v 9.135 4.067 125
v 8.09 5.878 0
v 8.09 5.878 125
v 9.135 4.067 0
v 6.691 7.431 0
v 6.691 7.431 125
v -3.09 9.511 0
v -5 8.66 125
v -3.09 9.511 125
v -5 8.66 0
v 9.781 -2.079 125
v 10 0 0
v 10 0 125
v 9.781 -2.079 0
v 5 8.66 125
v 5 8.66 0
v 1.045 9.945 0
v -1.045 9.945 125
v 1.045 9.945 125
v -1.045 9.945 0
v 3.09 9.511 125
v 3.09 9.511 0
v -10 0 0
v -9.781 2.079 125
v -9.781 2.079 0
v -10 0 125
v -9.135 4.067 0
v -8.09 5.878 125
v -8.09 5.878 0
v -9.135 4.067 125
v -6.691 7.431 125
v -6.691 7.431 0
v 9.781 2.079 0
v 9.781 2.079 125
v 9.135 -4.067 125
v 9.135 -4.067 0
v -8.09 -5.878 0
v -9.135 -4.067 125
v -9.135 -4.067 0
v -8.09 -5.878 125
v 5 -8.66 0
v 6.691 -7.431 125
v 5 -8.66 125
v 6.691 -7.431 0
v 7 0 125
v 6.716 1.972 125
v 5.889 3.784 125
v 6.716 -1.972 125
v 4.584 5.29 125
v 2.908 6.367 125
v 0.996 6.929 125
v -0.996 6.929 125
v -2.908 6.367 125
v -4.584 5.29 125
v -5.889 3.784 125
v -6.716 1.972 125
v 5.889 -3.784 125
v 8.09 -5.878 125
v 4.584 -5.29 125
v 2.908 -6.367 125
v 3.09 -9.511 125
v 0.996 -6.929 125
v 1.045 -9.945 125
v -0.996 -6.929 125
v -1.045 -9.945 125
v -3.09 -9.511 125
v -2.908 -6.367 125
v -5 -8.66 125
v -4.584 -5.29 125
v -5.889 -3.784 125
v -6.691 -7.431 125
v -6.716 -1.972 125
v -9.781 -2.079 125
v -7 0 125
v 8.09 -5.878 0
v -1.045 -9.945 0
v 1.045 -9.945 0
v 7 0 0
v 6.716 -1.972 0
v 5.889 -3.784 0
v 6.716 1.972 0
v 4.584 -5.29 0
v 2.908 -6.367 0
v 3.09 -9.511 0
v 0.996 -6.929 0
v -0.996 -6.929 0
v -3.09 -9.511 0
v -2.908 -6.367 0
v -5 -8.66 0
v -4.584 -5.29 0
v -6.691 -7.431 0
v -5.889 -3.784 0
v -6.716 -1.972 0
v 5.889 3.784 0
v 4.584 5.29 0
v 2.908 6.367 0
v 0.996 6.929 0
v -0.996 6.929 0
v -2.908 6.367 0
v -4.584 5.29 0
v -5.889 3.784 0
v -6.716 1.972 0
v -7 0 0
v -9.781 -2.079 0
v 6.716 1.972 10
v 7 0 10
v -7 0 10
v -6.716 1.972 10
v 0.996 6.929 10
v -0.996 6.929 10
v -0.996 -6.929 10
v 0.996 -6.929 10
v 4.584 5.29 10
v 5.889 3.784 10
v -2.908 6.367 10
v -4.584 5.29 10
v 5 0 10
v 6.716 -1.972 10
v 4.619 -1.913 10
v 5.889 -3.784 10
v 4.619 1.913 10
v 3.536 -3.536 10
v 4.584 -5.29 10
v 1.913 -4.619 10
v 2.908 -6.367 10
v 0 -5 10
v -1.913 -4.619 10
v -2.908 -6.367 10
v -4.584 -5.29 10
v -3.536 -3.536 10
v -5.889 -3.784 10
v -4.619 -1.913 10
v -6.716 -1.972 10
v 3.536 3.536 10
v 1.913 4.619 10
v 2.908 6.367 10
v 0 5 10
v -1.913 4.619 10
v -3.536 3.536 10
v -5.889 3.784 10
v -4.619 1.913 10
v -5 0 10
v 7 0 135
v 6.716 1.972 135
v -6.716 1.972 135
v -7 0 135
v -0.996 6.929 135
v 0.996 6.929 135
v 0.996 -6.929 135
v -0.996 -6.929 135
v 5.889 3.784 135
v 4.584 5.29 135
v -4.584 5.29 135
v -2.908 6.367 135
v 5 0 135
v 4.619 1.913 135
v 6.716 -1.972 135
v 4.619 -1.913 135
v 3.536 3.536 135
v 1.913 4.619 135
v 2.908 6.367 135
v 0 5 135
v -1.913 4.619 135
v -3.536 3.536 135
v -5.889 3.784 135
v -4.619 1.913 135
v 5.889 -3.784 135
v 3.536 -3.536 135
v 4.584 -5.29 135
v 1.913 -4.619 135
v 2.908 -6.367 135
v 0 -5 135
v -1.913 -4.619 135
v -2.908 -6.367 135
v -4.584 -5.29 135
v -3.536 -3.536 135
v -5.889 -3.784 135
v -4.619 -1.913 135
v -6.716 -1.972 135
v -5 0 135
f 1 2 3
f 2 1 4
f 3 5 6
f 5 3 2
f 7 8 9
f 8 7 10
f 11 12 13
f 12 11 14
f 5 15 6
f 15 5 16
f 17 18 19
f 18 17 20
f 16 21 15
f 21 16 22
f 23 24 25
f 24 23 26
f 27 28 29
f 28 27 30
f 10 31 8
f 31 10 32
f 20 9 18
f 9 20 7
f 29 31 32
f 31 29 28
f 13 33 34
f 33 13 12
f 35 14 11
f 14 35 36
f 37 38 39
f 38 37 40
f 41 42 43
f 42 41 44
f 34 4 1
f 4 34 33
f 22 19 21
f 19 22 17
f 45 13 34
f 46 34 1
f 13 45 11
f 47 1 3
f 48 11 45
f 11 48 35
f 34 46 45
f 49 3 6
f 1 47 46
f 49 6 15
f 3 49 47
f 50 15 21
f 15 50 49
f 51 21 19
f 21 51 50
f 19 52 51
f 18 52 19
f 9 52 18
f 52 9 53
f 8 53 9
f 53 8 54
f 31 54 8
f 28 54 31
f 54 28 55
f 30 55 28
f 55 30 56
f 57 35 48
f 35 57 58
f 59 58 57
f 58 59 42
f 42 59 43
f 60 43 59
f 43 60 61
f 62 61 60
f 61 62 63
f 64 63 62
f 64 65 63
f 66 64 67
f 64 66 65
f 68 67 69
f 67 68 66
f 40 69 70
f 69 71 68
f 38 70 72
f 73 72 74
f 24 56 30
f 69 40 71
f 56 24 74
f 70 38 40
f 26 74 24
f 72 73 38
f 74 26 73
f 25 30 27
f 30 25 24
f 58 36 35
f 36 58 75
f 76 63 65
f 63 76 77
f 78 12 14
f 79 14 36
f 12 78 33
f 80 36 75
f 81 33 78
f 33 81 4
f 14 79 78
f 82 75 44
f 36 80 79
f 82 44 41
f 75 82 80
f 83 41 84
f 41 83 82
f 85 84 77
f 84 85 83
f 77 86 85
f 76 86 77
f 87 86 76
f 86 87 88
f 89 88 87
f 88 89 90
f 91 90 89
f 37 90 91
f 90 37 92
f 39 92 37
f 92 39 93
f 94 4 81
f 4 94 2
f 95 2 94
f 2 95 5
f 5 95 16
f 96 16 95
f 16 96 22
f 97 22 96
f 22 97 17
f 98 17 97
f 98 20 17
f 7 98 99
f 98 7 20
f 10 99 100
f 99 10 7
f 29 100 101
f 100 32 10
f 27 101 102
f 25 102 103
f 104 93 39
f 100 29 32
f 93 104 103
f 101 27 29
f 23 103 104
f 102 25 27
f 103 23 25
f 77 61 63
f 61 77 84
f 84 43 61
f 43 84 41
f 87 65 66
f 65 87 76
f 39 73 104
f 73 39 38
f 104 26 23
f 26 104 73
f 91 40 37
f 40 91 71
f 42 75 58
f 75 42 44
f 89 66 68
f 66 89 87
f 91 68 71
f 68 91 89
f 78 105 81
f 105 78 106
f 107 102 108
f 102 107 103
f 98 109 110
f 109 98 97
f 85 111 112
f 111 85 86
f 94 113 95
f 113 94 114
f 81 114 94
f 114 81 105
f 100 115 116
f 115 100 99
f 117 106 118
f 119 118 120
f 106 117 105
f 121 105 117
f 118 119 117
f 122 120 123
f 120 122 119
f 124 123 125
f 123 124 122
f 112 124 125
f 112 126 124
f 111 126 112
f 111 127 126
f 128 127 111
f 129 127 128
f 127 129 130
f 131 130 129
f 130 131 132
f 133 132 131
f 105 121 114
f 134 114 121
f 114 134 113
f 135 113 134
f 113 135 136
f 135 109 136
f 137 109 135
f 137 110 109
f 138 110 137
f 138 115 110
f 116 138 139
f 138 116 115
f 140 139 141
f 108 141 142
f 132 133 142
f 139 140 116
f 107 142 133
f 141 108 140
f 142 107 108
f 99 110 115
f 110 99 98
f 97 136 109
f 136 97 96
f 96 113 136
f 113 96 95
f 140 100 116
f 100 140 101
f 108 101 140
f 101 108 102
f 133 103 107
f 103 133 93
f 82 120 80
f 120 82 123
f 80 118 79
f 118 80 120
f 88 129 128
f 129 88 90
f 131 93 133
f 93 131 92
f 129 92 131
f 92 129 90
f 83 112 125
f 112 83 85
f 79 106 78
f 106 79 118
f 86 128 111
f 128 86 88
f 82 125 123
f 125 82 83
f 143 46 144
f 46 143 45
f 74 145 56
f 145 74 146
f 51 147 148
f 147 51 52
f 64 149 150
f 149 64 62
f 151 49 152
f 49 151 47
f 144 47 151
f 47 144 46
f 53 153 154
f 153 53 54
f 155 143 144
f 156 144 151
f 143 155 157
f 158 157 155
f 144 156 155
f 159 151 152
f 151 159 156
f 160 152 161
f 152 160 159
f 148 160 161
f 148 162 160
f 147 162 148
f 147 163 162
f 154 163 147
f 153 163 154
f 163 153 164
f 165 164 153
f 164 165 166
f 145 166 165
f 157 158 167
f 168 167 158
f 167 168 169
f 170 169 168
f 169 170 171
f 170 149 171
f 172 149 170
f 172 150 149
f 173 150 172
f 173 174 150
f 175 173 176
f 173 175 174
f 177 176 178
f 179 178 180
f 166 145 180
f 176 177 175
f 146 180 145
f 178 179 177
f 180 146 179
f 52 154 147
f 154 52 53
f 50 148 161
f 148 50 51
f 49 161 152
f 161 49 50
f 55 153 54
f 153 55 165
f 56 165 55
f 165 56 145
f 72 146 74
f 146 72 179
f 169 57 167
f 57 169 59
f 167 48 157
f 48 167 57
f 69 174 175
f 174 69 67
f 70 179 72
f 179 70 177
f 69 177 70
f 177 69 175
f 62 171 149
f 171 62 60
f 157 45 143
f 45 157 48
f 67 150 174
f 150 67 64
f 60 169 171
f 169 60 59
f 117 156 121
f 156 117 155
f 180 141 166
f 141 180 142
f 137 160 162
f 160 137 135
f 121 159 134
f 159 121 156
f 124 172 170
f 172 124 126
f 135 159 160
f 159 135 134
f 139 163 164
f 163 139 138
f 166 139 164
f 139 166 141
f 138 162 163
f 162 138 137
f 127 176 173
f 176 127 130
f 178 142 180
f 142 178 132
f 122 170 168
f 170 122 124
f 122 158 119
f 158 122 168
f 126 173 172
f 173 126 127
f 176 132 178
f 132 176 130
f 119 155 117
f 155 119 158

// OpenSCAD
 
difference(){
    mainStructure();
    cylinder(140,5, 5);
}

module mainStructure(){
    top();
    difference(){
        rod();
        bottom(); 
    }
}

module rod(){
    cylinder(125,10, 10);
    
}

module bottom (){
    translate([0,0,0]){
        cylinder(10,7, 7);
    }
}

module top(){
    translate([0,0,125]){
        cylinder(10,7, 7);
    }
}
